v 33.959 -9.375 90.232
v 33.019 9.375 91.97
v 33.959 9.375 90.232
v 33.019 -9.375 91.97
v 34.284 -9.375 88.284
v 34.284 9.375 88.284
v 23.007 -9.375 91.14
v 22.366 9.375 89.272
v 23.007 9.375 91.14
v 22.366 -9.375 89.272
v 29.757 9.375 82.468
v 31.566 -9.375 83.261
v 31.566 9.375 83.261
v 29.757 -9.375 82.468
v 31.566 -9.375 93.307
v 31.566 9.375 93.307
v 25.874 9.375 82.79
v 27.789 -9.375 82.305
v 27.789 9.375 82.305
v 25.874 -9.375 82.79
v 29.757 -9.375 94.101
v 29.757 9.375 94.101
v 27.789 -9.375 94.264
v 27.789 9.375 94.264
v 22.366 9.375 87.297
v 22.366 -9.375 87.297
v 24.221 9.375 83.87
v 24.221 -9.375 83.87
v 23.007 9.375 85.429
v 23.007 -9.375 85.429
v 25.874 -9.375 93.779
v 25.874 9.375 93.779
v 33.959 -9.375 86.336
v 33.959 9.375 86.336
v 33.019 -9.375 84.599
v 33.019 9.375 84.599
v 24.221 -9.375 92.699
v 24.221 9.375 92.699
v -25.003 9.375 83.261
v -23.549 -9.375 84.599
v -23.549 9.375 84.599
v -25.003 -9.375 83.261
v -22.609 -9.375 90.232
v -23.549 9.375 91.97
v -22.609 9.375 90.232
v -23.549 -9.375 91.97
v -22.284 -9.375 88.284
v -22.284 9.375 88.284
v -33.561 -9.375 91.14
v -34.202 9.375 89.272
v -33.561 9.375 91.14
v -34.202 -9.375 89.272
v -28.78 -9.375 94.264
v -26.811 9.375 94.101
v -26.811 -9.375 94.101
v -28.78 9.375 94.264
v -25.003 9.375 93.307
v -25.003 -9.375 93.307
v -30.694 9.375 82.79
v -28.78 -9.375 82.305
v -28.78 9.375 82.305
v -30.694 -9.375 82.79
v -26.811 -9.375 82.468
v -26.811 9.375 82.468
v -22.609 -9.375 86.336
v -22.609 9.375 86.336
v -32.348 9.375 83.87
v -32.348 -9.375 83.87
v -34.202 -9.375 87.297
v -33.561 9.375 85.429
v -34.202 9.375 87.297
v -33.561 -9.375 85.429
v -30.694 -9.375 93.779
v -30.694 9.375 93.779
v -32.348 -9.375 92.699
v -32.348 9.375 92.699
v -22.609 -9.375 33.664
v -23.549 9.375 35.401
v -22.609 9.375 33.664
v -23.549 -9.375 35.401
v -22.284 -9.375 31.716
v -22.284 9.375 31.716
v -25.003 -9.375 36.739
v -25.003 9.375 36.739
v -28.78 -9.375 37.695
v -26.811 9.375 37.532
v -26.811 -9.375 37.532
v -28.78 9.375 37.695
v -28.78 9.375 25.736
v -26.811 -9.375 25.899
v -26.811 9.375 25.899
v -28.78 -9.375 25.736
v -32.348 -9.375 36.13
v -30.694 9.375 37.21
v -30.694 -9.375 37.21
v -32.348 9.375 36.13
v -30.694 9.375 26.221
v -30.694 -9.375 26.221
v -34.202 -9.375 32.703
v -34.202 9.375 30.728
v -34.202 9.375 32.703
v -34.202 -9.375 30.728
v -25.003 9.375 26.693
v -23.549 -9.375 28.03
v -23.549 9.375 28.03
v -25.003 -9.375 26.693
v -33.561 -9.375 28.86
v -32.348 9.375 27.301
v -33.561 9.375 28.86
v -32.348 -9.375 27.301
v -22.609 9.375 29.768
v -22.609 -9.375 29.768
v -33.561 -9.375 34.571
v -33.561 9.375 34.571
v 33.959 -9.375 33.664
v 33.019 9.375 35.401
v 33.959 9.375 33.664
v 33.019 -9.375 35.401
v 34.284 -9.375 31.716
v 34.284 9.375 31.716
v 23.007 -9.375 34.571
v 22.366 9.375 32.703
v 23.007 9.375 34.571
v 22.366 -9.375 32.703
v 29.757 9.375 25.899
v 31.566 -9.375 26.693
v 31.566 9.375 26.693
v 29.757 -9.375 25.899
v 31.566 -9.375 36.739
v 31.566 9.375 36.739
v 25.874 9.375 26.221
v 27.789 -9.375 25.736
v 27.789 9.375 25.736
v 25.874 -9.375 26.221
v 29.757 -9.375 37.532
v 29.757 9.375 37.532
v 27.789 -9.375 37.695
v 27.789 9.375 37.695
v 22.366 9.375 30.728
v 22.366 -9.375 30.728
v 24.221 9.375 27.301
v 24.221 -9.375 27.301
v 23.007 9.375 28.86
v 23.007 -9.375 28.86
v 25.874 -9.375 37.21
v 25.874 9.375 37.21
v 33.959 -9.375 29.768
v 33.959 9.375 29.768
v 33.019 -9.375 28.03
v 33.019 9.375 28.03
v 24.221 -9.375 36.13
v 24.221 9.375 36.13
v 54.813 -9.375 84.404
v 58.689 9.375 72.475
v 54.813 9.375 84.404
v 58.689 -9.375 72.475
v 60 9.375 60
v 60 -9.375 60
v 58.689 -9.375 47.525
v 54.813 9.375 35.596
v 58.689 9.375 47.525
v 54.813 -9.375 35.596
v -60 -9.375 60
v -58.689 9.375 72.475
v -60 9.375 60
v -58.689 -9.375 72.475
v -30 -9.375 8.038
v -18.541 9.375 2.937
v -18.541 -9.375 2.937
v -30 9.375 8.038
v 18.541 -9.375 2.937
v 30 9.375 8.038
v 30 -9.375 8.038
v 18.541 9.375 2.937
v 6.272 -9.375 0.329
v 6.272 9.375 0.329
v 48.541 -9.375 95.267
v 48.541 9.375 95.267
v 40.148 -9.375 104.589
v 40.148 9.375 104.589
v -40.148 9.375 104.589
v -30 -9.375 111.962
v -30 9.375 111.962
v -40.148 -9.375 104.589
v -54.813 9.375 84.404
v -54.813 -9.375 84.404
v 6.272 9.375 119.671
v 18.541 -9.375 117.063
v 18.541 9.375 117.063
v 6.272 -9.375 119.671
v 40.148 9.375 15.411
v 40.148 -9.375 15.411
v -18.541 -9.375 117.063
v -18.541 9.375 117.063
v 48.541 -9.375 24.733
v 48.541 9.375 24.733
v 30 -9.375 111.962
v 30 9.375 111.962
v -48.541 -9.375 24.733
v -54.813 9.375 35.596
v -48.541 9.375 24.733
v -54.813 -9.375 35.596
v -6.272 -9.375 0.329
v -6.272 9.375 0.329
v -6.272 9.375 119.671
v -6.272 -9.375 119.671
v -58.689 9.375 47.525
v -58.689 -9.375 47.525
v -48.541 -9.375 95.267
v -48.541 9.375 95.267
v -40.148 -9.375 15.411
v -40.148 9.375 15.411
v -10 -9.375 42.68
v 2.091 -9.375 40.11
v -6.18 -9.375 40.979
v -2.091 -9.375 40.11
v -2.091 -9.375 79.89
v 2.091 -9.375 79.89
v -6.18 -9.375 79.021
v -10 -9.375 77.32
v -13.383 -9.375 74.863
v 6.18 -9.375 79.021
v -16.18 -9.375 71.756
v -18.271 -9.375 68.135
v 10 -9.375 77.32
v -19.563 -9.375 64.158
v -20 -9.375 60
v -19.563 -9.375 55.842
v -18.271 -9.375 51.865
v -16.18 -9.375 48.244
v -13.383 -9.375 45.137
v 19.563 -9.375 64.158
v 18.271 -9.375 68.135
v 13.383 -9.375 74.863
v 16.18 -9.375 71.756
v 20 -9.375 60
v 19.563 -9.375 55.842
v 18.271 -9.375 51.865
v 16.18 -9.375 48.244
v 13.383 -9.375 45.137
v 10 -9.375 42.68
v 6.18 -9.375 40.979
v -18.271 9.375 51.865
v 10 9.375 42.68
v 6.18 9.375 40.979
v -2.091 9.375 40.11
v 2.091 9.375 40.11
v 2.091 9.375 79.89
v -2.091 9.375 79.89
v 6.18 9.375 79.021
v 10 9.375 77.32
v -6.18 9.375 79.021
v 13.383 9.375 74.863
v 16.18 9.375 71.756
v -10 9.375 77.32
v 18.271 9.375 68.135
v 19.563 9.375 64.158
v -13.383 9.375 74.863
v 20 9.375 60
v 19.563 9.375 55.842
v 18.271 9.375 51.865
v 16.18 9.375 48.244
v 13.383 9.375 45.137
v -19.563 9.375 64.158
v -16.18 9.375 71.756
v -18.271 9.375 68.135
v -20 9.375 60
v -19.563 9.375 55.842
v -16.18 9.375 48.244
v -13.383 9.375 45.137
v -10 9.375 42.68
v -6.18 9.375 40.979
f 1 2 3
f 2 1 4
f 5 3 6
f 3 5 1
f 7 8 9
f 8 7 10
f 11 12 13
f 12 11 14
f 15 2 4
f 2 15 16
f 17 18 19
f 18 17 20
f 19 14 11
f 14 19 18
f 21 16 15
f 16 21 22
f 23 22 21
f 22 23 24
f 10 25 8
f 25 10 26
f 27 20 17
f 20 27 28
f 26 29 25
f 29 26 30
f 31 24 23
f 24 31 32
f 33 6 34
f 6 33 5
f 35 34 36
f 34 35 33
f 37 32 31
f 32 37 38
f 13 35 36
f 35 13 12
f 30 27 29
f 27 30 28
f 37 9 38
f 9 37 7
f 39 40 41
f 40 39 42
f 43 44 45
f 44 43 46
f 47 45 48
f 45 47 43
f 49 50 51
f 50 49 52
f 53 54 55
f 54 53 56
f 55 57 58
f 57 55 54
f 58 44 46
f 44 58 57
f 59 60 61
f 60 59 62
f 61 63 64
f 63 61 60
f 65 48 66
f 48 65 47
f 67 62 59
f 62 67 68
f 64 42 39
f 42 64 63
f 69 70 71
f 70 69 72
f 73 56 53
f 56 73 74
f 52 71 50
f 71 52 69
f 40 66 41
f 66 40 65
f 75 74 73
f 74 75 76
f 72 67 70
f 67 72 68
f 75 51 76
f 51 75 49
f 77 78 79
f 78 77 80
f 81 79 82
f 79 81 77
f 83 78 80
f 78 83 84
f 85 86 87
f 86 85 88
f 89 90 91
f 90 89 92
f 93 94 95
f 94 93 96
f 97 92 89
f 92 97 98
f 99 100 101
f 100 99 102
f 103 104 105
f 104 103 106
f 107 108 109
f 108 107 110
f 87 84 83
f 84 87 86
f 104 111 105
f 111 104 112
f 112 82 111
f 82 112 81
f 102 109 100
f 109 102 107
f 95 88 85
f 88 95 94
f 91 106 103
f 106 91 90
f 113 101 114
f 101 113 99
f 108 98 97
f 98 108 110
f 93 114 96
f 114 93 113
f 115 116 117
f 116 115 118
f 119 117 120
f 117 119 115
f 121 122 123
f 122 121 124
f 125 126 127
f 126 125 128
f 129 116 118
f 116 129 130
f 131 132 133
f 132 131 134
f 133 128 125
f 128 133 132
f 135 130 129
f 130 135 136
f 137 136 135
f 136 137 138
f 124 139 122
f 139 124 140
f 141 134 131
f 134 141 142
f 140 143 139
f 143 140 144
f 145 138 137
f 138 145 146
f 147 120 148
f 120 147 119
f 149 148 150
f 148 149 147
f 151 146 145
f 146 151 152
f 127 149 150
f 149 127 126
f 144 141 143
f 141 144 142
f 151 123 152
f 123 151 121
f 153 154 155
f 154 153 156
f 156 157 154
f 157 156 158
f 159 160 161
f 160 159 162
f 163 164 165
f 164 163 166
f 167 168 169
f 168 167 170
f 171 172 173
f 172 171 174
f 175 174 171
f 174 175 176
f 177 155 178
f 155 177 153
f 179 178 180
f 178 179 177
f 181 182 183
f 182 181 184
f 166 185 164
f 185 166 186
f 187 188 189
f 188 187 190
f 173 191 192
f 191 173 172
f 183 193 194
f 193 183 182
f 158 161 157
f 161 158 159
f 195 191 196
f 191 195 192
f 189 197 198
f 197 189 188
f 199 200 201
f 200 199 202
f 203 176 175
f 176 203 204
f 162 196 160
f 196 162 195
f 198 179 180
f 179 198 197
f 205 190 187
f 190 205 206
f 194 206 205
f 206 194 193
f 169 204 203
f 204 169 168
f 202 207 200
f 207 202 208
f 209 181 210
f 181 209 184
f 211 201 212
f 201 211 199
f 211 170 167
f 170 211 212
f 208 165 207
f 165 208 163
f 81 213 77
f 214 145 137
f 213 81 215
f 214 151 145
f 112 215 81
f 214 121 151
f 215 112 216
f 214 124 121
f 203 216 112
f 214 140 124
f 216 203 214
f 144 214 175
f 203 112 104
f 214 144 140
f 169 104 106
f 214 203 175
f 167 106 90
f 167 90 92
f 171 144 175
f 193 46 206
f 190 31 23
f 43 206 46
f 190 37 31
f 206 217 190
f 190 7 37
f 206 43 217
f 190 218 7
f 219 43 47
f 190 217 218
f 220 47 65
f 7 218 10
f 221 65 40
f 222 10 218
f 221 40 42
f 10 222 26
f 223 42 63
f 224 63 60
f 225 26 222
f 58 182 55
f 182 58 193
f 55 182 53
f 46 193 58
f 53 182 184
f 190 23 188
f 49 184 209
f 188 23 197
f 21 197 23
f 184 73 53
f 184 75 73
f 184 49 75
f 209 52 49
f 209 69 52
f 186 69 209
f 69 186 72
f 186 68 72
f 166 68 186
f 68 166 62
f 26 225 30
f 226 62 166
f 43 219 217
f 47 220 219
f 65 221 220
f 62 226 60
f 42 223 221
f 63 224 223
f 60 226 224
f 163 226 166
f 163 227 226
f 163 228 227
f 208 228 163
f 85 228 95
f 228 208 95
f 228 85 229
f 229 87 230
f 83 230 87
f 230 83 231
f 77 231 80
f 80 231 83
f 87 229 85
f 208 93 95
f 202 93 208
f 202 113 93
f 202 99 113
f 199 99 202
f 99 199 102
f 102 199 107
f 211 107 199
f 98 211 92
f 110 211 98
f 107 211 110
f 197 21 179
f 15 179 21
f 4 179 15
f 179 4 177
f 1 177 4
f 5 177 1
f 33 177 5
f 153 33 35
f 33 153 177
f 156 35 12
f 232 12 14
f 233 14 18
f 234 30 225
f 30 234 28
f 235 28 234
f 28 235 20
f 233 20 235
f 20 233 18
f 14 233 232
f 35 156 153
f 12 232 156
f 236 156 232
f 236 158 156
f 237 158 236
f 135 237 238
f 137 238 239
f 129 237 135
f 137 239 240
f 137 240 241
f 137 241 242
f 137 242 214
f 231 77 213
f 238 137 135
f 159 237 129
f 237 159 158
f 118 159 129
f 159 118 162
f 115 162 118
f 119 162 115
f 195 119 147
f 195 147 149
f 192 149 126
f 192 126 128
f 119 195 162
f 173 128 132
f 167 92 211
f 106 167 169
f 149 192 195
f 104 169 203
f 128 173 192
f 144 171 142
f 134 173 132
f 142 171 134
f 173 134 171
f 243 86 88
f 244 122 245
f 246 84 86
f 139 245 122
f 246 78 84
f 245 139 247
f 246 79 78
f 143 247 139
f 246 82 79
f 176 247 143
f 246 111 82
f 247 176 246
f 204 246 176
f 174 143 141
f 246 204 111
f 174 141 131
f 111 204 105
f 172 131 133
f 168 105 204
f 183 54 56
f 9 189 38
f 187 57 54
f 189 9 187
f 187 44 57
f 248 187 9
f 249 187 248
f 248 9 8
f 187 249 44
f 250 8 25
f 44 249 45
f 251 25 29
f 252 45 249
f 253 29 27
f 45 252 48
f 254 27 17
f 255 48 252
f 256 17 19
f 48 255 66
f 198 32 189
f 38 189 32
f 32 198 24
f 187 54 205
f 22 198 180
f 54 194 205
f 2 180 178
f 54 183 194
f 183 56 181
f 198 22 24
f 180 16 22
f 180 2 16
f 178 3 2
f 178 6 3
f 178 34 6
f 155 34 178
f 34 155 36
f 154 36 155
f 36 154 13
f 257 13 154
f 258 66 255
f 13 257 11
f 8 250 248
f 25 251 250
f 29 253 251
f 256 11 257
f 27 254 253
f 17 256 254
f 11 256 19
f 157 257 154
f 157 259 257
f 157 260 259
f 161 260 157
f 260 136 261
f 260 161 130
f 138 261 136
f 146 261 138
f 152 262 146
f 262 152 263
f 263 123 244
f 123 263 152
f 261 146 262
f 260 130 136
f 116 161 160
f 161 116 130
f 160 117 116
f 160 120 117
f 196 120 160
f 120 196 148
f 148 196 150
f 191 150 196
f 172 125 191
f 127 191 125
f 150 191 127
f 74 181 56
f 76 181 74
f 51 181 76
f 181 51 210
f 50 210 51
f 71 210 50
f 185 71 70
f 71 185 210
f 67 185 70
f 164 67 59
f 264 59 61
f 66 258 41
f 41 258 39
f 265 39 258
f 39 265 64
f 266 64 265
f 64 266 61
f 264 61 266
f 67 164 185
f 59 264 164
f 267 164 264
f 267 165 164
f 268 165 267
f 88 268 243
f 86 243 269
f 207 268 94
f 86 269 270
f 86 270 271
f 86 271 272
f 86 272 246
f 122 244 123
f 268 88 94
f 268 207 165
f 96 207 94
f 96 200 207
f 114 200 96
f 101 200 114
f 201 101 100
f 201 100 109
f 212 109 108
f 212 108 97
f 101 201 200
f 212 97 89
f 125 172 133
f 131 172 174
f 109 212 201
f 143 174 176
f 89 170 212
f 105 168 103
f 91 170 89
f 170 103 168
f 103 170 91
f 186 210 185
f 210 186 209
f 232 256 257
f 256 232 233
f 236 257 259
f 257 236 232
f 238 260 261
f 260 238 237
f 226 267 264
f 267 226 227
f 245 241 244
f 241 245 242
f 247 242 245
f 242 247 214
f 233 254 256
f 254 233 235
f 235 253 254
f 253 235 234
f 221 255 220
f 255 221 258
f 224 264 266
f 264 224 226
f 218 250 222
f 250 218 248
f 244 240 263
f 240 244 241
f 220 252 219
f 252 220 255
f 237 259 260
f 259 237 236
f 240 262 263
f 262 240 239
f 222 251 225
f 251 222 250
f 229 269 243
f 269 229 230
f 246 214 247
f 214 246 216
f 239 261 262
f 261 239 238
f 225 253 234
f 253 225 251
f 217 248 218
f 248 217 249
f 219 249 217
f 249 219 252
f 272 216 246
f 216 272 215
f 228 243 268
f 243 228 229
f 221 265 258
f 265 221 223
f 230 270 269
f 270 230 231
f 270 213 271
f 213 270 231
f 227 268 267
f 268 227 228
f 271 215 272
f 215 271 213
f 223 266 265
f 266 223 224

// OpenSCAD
/* doodle-meta {"version":1,"parameters":{"outer_diameter":{"label":"Outer Diameter","description":"Diameter of the flange outer circle","unit":"mm","feature":"outer_profile"},"thickness":{"label":"Thickness","description":"Height of the flange plate","unit":"mm","feature":"body_thickness"},"bore_diameter":{"label":"Center Bore Diameter","description":"Diameter of the central through hole","unit":"mm","feature":"center_bore"},"bolt_hole_diameter":{"label":"Bolt Hole Diameter","description":"Diameter of the four bolt holes","unit":"mm","feature":"bolt_holes"},"bolt_circle_diameter":{"label":"Bolt Circle Diameter","description":"Diameter of the circle passing through bolt hole centers","unit":"mm","feature":"bolt_pattern"}},"features":{"outer_profile":{"kind":"dimension","axis":"x","label":"Outer Diameter"},"body_thickness":{"kind":"dimension","axis":"y","label":"Thickness"},"center_bore":{"kind":"region","label":"Center Bore","min":[{"parameter":"bore_diameter","scale":-0.5,"offset":0},0,{"parameter":"bore_diameter","scale":-0.5,"offset":0}],"max":[{"parameter":"bore_diameter","scale":0.5,"offset":0},{"parameter":"thickness","scale":1,"offset":0},{"parameter":"bore_diameter","scale":0.5,"offset":0}]},"bolt_holes":{"kind":"region","label":"Bolt Holes","min":[{"parameter":"bolt_circle_diameter","scale":-0.5,"offset":0},0,{"parameter":"bolt_circle_diameter","scale":-0.5,"offset":0}],"max":[{"parameter":"bolt_circle_diameter","scale":0.5,"offset":0},{"parameter":"thickness","scale":1,"offset":0},{"parameter":"bolt_circle_diameter","scale":0.5,"offset":0}]}}} */

// Parameters
outer_diameter = 120.0;
thickness = 18.75;
bore_diameter = 40.0;
bolt_hole_diameter = 12.0;
bolt_circle_diameter = 80.0;

// Derived constants
eps = 0.1;
bolt_radius = bolt_circle_diameter / 2.0;

// Main Design
difference() {
    // Positive Body: Flange Plate
    // Flat face lies in XZ plane (Front view).
    // Thickness extends along Y-axis.
    // Sits on build plate (Z=0 to Z=outer_diameter).
    // Centered in X (-60 to 60) and Y (-thickness/2 to thickness/2).
    translate([0, 0, outer_diameter/2])
        rotate([90, 0, 0])
            cylinder(d=outer_diameter, h=thickness, center=true);

    // Subtractive Cutters
    
    // Center Bore
    // Axis along Y (depth), cuts through thickness
    translate([0, 0, outer_diameter/2])
        rotate([90, 0, 0])
            cylinder(d=bore_diameter, h=thickness + 2*eps, center=true);

    // Bolt Holes (4x)
    // Axis along Y (depth), cuts through thickness
    // Positions in XZ plane (Front view)
    // Angles: 45, 135, 225, 315 degrees relative to center (0, outer_diameter/2)
    for (angle = [45, 135, 225, 315]) {
        translate([
            bolt_radius * cos(angle),
            0,
            outer_diameter/2 + bolt_radius * sin(angle)
        ])
        rotate([90, 0, 0])
            cylinder(d=bolt_hole_diameter, h=thickness + 2*eps, center=true);
    }
}
